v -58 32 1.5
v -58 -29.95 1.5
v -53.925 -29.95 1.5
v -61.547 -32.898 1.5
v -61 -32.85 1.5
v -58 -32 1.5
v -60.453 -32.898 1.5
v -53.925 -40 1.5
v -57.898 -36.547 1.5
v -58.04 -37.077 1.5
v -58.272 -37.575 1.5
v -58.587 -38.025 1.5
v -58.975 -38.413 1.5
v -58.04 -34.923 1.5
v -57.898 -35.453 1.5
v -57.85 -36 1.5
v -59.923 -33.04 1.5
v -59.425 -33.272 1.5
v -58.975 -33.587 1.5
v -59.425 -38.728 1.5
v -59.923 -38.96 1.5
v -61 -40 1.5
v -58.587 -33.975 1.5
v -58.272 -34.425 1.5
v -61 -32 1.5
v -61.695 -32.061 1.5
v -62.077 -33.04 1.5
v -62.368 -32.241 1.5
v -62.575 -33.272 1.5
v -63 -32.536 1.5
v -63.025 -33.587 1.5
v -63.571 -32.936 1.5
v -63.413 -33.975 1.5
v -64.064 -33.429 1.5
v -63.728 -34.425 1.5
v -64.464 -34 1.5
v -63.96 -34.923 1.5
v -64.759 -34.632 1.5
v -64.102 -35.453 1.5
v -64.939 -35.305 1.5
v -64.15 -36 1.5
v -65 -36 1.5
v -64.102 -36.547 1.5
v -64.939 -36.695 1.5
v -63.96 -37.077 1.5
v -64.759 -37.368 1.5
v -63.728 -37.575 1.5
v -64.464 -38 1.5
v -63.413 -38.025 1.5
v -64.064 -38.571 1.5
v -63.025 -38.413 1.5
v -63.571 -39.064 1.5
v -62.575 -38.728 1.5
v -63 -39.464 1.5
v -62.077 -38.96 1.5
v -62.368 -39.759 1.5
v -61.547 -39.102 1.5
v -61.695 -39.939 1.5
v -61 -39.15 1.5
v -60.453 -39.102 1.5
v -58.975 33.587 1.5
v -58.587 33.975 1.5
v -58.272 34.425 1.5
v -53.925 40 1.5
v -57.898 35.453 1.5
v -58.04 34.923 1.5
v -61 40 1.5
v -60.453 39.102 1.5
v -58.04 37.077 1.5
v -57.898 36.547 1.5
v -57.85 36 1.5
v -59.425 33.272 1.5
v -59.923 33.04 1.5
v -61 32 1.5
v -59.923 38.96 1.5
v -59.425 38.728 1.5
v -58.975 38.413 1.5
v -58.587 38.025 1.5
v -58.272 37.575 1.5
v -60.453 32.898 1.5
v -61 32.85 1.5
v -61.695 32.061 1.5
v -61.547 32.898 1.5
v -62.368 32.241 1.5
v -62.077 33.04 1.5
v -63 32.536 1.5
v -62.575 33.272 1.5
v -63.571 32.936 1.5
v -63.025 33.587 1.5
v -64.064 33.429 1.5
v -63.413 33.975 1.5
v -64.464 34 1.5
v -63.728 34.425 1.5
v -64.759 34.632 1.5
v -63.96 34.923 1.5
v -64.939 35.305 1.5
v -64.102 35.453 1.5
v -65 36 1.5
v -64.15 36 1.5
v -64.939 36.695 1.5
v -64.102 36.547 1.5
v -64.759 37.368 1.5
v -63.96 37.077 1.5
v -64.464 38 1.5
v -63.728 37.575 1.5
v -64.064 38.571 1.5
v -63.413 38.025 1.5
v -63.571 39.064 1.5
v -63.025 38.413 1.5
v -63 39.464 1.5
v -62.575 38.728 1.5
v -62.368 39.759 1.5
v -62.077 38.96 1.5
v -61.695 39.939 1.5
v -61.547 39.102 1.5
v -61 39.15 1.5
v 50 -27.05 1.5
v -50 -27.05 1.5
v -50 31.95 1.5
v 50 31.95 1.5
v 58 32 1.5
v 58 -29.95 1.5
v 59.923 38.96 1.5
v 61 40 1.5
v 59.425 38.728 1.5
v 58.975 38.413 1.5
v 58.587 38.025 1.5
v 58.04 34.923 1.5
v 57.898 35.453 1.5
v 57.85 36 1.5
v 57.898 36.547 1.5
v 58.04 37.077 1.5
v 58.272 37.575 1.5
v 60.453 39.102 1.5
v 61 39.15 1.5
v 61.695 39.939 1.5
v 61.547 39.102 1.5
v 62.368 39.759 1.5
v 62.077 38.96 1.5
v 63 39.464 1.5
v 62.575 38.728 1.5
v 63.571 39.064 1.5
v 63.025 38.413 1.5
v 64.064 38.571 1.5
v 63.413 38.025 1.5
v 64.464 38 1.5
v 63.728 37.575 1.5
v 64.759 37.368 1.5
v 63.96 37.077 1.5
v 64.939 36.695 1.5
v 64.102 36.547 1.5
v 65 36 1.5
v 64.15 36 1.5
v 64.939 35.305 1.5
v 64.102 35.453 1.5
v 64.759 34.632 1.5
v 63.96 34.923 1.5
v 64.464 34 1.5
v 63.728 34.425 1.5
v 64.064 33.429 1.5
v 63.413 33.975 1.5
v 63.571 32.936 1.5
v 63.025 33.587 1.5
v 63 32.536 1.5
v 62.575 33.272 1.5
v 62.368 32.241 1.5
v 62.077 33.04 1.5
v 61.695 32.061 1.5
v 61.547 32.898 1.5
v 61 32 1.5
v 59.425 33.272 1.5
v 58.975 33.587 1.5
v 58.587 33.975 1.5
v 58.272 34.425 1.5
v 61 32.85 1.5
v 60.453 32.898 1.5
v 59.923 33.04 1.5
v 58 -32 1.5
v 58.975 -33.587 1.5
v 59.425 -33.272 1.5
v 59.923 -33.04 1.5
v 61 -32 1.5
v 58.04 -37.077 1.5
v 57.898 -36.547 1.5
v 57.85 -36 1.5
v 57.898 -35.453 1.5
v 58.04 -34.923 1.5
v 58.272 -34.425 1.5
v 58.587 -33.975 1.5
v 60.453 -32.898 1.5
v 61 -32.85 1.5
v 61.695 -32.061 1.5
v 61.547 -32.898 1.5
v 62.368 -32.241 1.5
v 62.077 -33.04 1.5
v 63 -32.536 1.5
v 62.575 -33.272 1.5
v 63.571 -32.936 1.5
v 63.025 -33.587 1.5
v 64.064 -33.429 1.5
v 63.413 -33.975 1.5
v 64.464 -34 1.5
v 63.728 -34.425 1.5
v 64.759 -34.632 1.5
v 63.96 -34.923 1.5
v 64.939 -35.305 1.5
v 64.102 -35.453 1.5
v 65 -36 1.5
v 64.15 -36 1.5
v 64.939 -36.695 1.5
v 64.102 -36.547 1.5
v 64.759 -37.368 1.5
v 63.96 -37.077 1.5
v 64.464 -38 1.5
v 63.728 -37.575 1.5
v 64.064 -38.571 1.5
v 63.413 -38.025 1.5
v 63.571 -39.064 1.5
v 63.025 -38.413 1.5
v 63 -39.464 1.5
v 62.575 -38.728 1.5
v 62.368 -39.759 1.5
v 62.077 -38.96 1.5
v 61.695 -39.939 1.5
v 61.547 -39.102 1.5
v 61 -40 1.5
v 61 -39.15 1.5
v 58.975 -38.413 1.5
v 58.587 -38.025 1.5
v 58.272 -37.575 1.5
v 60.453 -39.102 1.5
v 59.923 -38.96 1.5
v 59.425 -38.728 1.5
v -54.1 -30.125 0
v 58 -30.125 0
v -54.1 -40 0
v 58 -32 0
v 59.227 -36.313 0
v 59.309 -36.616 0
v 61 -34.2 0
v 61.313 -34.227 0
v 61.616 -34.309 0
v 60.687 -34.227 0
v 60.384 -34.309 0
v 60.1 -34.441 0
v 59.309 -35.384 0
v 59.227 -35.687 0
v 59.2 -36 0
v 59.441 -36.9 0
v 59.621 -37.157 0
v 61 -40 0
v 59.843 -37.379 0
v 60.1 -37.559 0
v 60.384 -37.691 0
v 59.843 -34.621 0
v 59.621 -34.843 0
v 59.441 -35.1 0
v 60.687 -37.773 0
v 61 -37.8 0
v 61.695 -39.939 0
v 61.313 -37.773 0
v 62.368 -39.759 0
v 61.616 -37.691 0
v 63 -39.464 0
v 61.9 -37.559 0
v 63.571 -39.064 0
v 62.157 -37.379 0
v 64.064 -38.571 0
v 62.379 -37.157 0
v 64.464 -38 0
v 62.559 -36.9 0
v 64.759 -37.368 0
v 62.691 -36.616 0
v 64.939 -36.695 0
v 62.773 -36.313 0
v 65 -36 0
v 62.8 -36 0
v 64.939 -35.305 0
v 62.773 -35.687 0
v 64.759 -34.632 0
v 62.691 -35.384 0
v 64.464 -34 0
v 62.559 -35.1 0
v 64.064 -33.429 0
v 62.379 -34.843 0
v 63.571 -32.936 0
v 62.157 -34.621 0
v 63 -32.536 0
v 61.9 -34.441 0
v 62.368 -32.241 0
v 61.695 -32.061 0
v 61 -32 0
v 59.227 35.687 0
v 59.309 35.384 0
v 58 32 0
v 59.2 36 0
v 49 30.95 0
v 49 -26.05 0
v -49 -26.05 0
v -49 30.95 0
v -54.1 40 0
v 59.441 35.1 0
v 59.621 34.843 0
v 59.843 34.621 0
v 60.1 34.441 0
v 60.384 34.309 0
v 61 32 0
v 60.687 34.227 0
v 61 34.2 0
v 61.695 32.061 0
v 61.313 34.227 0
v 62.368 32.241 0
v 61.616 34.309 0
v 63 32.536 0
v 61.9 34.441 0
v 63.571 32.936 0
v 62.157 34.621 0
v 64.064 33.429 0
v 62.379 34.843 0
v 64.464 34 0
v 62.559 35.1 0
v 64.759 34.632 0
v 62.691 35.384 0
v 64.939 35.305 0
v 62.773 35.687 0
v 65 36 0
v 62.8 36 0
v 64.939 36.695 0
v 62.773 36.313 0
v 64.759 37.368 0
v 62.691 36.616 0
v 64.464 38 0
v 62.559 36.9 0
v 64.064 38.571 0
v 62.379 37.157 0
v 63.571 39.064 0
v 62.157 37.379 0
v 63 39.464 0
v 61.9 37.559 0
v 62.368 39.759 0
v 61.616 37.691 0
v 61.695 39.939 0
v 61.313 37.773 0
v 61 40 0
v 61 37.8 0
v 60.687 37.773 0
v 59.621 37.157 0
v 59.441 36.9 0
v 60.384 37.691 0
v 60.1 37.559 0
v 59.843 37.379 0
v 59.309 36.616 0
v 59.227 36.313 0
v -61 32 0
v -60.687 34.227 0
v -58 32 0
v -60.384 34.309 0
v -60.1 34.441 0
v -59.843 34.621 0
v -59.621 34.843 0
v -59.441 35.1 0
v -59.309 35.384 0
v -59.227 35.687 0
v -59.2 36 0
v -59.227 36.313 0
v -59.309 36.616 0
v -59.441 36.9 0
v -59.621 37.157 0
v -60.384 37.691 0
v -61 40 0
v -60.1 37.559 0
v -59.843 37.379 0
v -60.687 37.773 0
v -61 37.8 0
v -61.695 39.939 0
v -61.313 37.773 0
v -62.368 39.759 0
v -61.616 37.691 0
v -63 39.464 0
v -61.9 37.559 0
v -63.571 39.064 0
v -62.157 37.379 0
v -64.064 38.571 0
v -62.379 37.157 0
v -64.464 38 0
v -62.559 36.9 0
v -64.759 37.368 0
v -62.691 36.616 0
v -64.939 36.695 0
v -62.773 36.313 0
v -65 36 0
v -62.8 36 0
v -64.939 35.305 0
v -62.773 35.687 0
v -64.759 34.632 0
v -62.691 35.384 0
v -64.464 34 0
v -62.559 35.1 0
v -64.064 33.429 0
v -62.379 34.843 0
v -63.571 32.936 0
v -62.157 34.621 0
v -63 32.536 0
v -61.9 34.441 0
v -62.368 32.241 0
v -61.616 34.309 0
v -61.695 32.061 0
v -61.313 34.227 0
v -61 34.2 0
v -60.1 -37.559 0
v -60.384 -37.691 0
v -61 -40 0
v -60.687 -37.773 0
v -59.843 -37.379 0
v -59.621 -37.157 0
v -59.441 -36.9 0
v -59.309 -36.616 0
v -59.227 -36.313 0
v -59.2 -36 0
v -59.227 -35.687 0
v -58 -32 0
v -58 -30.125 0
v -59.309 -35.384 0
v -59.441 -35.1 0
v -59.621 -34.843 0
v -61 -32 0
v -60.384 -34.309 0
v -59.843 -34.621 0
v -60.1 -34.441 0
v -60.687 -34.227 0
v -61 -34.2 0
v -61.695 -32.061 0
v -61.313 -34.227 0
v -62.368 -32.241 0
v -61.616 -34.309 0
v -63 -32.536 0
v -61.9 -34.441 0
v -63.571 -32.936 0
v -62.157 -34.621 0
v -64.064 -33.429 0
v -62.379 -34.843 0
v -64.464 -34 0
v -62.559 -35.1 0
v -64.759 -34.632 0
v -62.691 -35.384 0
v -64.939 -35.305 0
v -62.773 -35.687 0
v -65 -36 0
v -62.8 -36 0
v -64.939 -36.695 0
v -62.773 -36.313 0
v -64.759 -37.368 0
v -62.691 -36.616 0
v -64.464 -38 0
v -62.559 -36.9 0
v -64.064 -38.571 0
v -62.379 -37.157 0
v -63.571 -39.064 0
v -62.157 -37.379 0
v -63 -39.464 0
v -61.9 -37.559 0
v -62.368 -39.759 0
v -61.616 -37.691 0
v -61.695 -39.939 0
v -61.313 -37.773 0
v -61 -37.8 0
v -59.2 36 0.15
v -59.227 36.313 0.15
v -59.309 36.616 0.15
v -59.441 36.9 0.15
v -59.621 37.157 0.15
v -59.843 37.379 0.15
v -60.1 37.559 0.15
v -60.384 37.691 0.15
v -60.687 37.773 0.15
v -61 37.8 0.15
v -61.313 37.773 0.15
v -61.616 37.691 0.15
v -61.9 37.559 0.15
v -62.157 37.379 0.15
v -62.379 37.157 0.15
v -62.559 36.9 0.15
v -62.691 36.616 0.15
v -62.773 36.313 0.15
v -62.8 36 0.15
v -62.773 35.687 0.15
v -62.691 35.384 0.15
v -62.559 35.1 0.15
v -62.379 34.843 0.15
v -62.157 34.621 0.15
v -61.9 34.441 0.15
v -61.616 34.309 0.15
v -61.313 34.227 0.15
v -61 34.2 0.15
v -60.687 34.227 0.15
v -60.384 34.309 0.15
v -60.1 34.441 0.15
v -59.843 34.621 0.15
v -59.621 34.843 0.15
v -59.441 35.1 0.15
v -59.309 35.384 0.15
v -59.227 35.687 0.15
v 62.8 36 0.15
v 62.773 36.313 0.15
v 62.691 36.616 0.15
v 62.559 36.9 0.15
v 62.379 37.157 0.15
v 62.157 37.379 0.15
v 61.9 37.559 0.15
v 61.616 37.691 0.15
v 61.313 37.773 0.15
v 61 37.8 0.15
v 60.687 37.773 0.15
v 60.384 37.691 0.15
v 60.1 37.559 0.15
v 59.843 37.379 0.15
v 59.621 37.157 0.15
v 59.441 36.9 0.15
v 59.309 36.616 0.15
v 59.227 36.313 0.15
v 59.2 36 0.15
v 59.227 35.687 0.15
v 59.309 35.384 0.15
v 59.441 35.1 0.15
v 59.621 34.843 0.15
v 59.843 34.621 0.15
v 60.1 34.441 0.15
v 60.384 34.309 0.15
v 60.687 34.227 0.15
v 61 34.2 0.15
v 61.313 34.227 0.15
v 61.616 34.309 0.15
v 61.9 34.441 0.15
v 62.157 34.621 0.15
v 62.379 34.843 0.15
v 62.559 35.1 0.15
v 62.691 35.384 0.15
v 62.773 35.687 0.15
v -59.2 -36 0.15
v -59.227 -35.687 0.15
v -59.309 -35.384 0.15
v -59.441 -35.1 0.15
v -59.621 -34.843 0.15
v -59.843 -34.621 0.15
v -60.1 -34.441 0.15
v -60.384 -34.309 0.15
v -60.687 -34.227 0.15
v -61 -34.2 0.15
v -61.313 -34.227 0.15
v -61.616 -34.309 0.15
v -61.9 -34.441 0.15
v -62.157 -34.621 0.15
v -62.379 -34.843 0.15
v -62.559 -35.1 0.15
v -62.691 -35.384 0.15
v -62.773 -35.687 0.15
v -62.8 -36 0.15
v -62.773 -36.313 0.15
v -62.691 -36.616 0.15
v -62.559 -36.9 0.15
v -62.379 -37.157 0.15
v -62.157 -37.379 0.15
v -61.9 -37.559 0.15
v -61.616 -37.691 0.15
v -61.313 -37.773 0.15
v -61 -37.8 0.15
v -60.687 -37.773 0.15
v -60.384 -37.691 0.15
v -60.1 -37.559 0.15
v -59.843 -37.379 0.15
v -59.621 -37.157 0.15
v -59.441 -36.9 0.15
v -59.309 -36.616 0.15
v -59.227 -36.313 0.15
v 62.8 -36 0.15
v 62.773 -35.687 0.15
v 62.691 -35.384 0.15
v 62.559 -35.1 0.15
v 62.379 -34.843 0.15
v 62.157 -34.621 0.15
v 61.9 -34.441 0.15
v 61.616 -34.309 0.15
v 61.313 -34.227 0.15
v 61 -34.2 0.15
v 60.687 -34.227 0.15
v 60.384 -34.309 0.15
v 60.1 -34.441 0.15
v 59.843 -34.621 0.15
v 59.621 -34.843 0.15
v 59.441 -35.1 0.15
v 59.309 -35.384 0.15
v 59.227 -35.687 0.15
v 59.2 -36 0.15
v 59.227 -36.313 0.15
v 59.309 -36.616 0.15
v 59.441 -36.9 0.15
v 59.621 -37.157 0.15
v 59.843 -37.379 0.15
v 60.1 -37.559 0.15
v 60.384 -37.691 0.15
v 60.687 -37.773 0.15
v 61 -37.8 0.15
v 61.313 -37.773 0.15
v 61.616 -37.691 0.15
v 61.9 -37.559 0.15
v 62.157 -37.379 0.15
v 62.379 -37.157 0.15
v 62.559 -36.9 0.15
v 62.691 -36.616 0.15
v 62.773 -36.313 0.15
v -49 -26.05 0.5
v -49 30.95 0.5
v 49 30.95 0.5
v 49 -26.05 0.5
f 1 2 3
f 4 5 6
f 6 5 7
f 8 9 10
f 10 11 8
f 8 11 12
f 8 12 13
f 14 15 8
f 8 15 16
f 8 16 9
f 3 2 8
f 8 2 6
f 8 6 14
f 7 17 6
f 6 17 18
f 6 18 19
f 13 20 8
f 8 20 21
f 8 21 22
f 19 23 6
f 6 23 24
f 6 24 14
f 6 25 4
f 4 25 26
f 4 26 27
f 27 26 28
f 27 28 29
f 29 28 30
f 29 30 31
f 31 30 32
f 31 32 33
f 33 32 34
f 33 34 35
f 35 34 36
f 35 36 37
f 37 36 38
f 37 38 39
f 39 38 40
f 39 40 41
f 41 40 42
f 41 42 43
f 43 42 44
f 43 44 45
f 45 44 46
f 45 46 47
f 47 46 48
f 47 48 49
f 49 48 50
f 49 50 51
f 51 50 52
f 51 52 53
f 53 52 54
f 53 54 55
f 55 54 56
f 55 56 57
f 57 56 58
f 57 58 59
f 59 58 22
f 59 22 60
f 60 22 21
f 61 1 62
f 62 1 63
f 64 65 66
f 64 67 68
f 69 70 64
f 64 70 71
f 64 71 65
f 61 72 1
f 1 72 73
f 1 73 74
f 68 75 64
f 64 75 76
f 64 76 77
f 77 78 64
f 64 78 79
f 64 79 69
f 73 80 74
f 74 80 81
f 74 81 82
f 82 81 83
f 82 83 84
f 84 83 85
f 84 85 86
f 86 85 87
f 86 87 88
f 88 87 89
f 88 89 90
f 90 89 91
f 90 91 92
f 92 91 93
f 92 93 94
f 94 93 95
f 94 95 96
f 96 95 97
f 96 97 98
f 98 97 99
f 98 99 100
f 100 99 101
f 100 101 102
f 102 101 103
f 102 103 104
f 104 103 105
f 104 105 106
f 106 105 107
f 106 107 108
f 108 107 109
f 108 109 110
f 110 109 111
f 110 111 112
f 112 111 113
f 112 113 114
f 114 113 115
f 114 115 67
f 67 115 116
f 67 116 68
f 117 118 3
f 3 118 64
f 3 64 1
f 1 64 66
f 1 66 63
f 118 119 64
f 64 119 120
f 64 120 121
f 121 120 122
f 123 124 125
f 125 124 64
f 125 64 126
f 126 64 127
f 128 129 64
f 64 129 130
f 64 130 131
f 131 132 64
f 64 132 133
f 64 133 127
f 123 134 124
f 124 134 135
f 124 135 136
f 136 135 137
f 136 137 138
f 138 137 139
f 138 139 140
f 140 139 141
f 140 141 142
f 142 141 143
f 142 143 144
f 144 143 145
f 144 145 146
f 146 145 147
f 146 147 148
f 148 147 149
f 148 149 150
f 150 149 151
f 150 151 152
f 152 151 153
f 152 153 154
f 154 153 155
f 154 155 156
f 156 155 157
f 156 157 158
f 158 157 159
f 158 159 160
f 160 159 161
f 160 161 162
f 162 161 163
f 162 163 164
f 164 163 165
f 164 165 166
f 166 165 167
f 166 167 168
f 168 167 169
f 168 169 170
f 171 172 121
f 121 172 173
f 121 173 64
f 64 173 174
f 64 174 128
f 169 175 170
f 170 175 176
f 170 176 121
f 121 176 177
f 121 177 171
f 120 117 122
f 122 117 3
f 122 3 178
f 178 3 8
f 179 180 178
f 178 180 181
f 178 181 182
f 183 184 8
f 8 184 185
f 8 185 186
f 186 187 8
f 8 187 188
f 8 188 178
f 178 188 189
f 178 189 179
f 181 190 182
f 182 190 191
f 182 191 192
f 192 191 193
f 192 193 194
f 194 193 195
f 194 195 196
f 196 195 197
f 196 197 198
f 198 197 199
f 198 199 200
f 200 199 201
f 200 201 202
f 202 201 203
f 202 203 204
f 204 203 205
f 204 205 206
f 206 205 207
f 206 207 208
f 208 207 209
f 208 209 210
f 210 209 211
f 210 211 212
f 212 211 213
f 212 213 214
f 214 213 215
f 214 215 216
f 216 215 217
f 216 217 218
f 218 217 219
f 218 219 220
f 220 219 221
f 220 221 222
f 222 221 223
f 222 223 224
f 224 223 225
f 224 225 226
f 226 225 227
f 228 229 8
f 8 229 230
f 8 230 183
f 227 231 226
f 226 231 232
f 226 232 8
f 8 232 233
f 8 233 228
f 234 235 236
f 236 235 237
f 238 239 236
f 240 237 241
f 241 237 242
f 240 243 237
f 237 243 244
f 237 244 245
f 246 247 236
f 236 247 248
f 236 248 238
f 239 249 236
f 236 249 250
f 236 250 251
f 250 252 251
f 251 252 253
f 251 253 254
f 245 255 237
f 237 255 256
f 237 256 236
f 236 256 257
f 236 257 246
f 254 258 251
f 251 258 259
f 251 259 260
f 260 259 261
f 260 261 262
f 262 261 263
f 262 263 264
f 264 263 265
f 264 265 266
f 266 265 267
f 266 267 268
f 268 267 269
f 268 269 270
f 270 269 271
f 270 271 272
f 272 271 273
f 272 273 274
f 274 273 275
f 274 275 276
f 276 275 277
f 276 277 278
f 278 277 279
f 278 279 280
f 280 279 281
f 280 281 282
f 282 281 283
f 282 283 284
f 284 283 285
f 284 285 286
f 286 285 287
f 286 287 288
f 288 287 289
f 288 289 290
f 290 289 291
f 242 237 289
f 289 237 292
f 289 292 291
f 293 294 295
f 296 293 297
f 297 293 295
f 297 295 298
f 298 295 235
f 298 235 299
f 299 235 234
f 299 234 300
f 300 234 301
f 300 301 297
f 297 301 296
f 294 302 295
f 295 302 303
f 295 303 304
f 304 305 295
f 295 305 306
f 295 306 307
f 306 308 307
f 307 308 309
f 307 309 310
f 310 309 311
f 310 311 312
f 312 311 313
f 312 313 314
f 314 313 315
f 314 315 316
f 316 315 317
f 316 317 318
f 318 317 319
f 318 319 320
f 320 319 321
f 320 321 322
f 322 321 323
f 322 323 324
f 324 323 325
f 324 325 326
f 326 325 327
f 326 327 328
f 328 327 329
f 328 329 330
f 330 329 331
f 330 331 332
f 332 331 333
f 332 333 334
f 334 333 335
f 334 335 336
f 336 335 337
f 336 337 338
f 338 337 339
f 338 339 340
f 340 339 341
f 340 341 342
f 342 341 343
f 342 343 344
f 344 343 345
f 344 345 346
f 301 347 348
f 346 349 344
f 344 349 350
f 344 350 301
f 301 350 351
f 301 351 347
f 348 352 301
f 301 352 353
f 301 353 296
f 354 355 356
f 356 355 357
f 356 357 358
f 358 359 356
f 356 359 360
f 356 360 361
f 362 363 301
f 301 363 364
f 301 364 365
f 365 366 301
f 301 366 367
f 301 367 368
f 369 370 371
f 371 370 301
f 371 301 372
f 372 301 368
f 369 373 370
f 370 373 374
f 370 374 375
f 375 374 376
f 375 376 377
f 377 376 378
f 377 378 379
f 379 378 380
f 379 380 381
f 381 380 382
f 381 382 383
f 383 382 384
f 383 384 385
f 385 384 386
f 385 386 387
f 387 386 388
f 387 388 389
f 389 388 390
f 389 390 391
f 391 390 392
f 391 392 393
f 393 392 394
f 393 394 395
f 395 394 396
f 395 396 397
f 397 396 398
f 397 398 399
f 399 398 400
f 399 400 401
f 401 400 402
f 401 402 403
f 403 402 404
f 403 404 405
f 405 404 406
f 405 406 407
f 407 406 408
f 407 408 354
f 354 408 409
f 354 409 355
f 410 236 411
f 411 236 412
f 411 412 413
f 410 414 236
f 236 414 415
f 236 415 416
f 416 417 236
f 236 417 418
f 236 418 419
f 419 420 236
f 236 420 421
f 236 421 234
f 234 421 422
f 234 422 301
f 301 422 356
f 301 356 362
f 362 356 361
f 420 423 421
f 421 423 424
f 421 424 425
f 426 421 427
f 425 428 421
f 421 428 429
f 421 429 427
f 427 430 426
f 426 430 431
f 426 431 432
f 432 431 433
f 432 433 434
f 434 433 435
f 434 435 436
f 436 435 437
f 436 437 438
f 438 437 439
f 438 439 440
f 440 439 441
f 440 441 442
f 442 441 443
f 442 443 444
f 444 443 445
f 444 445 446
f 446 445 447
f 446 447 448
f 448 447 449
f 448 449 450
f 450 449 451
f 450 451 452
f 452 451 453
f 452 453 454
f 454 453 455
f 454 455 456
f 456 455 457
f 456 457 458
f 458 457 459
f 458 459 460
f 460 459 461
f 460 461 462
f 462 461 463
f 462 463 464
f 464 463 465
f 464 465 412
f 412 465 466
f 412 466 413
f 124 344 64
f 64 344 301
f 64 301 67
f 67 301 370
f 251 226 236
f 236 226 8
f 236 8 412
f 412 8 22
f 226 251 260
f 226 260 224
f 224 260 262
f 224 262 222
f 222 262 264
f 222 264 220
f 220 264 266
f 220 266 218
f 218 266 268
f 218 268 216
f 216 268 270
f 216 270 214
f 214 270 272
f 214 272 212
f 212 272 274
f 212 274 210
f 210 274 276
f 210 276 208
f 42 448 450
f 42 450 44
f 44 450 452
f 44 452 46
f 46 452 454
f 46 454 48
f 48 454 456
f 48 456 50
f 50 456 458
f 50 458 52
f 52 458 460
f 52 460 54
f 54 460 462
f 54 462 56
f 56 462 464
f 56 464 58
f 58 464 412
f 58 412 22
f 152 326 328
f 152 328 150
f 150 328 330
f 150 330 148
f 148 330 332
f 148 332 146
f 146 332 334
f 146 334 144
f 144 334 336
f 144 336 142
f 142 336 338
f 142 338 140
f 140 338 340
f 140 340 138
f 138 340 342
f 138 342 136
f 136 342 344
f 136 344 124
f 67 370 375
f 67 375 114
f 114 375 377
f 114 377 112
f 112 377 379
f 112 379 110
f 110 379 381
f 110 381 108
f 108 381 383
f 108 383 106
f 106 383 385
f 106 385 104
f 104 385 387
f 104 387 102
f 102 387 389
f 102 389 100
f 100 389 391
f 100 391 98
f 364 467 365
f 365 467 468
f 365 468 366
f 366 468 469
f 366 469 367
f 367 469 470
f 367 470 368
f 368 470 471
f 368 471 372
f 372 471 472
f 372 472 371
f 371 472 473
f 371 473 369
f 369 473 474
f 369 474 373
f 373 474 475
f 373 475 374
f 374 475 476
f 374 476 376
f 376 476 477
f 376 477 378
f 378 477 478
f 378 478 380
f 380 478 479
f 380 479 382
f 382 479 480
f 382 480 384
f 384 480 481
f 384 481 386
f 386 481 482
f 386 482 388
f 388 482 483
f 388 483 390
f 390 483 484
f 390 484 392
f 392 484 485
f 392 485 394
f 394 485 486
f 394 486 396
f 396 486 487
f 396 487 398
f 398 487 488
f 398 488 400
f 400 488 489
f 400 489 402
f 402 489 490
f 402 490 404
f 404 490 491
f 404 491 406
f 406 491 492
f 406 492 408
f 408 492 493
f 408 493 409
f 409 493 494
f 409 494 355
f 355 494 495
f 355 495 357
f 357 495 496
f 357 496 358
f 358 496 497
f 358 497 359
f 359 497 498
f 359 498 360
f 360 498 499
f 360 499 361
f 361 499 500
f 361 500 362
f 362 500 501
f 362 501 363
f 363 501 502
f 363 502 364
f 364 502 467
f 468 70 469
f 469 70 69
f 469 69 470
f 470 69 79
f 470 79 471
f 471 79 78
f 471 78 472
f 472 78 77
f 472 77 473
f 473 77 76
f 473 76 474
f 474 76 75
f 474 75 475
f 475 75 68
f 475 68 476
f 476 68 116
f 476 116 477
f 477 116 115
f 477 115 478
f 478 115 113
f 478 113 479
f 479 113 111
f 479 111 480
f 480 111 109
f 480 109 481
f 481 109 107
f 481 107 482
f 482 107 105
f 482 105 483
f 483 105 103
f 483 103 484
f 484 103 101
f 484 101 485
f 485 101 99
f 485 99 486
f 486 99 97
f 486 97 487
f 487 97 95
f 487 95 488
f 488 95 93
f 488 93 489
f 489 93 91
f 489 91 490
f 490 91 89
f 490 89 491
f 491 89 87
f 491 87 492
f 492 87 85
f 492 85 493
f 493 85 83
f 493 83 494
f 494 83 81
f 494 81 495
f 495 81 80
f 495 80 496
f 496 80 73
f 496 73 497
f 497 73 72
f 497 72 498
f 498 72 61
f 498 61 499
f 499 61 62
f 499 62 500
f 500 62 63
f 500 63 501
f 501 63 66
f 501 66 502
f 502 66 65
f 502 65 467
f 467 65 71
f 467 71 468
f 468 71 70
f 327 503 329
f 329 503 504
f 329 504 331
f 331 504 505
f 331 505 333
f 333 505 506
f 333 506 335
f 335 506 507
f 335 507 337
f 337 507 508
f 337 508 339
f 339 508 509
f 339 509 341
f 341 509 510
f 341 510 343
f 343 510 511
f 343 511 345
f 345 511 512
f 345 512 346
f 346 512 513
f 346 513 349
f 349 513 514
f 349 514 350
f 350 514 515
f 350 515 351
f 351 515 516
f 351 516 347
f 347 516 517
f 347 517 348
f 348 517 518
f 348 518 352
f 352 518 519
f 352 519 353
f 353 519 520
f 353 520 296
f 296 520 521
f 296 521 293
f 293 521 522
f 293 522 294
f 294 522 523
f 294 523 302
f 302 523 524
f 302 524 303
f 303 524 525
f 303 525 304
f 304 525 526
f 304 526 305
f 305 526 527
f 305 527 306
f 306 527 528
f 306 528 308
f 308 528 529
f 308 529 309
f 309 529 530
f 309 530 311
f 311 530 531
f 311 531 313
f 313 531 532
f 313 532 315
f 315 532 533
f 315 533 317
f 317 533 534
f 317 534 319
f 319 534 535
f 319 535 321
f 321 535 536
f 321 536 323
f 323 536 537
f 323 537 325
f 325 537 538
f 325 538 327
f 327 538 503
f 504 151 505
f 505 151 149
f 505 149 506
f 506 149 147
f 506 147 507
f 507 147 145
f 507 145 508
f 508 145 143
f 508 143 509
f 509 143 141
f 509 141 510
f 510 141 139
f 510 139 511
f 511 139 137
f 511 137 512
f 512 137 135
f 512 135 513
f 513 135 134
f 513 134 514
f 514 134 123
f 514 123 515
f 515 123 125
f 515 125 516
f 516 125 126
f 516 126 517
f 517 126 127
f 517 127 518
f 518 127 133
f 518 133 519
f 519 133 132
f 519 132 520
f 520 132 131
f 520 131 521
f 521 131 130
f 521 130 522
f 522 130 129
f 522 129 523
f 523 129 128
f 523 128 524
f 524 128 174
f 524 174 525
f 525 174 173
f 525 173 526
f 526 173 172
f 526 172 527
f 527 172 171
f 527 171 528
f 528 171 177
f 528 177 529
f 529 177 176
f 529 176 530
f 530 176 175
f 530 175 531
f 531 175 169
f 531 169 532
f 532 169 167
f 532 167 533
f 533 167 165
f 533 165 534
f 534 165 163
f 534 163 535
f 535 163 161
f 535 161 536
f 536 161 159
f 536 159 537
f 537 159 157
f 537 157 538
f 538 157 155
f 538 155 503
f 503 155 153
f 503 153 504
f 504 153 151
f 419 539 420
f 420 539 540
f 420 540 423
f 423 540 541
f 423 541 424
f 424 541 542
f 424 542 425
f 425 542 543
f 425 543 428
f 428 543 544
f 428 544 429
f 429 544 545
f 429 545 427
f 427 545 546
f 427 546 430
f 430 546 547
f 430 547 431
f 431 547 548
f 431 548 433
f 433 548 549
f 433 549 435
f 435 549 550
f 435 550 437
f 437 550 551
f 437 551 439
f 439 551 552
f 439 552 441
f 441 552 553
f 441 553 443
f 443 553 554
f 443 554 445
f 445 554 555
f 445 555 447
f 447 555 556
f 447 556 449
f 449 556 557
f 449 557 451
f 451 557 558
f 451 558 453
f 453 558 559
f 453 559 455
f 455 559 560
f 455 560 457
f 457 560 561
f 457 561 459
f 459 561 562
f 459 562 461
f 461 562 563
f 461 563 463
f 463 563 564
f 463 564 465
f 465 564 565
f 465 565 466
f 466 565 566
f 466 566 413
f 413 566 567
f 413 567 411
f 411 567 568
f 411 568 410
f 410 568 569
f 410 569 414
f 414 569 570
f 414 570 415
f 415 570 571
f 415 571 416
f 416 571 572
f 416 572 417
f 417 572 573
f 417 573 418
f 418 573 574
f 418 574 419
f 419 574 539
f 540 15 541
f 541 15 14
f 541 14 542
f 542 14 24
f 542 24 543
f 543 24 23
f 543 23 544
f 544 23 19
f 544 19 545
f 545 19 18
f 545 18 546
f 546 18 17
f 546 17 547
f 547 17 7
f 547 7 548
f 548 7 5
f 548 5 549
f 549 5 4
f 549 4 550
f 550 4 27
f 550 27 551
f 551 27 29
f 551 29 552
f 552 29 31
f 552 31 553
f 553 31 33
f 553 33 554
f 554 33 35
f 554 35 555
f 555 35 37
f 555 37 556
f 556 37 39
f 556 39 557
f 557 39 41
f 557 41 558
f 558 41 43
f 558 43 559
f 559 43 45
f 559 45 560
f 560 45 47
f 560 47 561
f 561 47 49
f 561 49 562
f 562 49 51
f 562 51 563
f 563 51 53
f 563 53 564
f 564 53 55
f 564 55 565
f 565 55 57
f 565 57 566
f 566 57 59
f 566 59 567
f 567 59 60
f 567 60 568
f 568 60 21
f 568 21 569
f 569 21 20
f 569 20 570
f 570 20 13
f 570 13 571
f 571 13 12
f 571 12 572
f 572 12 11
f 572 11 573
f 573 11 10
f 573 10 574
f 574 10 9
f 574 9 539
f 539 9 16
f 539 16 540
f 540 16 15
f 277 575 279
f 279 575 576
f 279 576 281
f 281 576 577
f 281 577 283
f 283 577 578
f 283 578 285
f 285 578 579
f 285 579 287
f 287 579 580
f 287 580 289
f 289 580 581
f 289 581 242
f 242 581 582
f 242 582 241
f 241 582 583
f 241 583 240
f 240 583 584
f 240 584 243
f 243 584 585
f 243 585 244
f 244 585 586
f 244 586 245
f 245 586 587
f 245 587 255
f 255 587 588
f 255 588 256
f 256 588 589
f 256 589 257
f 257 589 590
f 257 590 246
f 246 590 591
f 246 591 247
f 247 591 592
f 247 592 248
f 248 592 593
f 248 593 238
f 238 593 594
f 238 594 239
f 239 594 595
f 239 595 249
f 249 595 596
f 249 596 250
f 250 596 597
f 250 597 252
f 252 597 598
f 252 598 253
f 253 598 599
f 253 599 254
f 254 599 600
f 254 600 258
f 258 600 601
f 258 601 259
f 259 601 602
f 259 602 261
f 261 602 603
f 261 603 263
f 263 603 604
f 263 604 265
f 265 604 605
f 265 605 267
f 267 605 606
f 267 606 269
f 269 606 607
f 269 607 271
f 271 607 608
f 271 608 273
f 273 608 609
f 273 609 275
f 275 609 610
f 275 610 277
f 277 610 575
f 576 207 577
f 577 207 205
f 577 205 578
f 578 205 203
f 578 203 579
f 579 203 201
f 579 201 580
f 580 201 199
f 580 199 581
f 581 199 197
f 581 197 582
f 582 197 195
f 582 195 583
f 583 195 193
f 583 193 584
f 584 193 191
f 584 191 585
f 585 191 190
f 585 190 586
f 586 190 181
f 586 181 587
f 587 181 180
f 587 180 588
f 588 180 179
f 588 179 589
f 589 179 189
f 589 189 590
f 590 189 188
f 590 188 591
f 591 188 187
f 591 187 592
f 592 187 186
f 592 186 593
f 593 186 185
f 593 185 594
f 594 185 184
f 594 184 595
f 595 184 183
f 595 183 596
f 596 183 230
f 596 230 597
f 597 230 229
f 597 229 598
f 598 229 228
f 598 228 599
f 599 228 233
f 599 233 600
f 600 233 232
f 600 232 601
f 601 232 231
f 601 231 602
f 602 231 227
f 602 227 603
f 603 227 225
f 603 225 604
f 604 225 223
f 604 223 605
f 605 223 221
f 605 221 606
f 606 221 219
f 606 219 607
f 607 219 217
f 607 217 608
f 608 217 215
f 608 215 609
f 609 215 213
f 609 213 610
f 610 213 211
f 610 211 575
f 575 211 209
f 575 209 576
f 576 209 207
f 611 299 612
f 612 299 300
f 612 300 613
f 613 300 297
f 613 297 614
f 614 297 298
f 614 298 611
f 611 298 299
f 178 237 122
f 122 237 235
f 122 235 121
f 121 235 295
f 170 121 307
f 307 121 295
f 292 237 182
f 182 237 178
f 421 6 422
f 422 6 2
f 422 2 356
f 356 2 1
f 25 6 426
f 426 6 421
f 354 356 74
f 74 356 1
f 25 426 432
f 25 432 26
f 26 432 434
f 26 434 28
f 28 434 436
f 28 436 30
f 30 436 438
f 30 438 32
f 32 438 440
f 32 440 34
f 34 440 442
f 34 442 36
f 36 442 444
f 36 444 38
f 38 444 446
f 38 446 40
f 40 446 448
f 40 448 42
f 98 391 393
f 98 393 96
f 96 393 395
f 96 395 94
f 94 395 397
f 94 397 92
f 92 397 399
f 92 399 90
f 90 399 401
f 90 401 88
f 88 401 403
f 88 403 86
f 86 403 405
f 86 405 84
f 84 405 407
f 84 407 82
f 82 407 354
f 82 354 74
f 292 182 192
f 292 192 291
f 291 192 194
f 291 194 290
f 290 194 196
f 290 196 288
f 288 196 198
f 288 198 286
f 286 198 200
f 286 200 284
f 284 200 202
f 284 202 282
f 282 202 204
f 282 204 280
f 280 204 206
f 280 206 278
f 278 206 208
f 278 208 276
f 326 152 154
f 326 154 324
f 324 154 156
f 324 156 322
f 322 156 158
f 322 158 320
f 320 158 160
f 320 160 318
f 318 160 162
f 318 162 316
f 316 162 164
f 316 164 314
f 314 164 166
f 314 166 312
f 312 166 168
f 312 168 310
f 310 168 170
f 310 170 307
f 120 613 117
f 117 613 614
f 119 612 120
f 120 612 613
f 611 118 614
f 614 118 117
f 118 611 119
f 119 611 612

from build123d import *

# Parameters (mm, degrees)
SKETCH1_W           = 130
SKETCH1_H           = 80
BOSS_EXTRUDE1_DEPTH = 1.5
FILLET1_R           = 4
SKETCH4_W           = 98
SKETCH4_H           = 57
CUT_EXTRUDE1_DEPTH  = 6
SKETCH6_W           = 7
SKETCH6_H           = 64
CUT_EXTRUDE3_DEPTH  = 10
FILLET3_R           = 4
CHAMFER1_SIZE       = 1


with BuildPart() as part:
    # Sketch1 → Boss-Extrude1 (new body)
    with BuildSketch(Plane.XY):
        Rectangle(SKETCH1_W, SKETCH1_H)
    extrude(amount=BOSS_EXTRUDE1_DEPTH)

    # Fillet1
    fillet1_edges = [part.edges().sort_by_distance(p)[0] for p in [
        (65, -40, 0.75),
        (-65, -40, 0.75),
        (-65, 40, 0.75),
        (65, 40, 0.75),
    ]]
    fillet(fillet1_edges, radius=FILLET1_R)

    # Sketch3 → CSK for M3 Flat Countersunk Head Screw1 (revolve, cut)
    with BuildSketch(Plane(origin=(-61, 36, 1.5), x_dir=(0, -1, 0), z_dir=(1, 0, 0))):
        Polygon((0, 0), (0, 1.5), (1.8, 1.5), (1.8, 1.35), (3.15, 0), align=None)
    csk_for_m3_flat_countersunk_head_screw1 = revolve(axis=Axis((-61, 36, 7.85), (0, 0, -1)), mode=Mode.SUBTRACT)

    # Mirror1: CSK for M3 Flat Countersunk Head Screw1 across plane
    add(csk_for_m3_flat_countersunk_head_screw1.mirror(Plane(origin=(0, 0, 0), x_dir=(0, 0, 1), z_dir=(1, 0, 0))), mode=Mode.SUBTRACT)

    # Mirror2: CSK for M3 Flat Countersunk Head Screw1 across plane
    add(csk_for_m3_flat_countersunk_head_screw1.mirror(Plane.ZX), mode=Mode.SUBTRACT)

    # Mirror2 copy 1 sketch → Mirror2 copy 1 (revolve, cut)
    with BuildSketch(Plane(origin=(61, -36, 1.5), x_dir=(0, 1, 0), z_dir=(-1, 0, 0))):
        Polygon((0, 0), (0, 1.5), (1.8, 1.5), (1.8, 1.35), (3.15, 0), align=None)
    revolve(axis=Axis((61, -36, 7.85), (0, 0, -1)), mode=Mode.SUBTRACT)

    # Sketch4 → Cut-Extrude1 (cut)
    with BuildSketch(Plane.XY.offset(1.5)):
        with Locations((0, 2.45)):
            Rectangle(SKETCH4_W, SKETCH4_H)
    extrude(amount=-CUT_EXTRUDE1_DEPTH, mode=Mode.SUBTRACT)

    # Sketch6 → Cut-Extrude3 (cut)
    with BuildSketch(Plane.XY.offset(1.5)):
        with Locations((61.5, 0)):
            Rectangle(SKETCH6_W, SKETCH6_H)
    cut_extrude3 = extrude(amount=-CUT_EXTRUDE3_DEPTH, mode=Mode.SUBTRACT)

    # Mirror6: Cut-Extrude3 across plane
    add(cut_extrude3.mirror(Plane(origin=(0, 0, 0), x_dir=(0, 0, 1), z_dir=(1, 0, 0))), mode=Mode.SUBTRACT)

    # Fillet3
    fillet3_edges = [part.edges().sort_by_distance(p)[0] for p in [
        (65, -32, 0.75),
        (65, 32, 0.75),
        (-65, -32, 0.75),
        (-65, 32, 0.75),
    ]]
    fillet(fillet3_edges, radius=FILLET3_R - 0.0001)  # a hair under: the kernel refuses the full size

    # Chamfer1
    chamfer1_edges = [part.edges().sort_by_distance(p)[0] for p in [
        (-49, 2.45, 1.5),
        (0, -26.05, 1.5),
        (49, 2.45, 1.5),
        (0, 30.95, 1.5),
    ]]
    chamfer(chamfer1_edges, length=CHAMFER1_SIZE)


solid = part.part
